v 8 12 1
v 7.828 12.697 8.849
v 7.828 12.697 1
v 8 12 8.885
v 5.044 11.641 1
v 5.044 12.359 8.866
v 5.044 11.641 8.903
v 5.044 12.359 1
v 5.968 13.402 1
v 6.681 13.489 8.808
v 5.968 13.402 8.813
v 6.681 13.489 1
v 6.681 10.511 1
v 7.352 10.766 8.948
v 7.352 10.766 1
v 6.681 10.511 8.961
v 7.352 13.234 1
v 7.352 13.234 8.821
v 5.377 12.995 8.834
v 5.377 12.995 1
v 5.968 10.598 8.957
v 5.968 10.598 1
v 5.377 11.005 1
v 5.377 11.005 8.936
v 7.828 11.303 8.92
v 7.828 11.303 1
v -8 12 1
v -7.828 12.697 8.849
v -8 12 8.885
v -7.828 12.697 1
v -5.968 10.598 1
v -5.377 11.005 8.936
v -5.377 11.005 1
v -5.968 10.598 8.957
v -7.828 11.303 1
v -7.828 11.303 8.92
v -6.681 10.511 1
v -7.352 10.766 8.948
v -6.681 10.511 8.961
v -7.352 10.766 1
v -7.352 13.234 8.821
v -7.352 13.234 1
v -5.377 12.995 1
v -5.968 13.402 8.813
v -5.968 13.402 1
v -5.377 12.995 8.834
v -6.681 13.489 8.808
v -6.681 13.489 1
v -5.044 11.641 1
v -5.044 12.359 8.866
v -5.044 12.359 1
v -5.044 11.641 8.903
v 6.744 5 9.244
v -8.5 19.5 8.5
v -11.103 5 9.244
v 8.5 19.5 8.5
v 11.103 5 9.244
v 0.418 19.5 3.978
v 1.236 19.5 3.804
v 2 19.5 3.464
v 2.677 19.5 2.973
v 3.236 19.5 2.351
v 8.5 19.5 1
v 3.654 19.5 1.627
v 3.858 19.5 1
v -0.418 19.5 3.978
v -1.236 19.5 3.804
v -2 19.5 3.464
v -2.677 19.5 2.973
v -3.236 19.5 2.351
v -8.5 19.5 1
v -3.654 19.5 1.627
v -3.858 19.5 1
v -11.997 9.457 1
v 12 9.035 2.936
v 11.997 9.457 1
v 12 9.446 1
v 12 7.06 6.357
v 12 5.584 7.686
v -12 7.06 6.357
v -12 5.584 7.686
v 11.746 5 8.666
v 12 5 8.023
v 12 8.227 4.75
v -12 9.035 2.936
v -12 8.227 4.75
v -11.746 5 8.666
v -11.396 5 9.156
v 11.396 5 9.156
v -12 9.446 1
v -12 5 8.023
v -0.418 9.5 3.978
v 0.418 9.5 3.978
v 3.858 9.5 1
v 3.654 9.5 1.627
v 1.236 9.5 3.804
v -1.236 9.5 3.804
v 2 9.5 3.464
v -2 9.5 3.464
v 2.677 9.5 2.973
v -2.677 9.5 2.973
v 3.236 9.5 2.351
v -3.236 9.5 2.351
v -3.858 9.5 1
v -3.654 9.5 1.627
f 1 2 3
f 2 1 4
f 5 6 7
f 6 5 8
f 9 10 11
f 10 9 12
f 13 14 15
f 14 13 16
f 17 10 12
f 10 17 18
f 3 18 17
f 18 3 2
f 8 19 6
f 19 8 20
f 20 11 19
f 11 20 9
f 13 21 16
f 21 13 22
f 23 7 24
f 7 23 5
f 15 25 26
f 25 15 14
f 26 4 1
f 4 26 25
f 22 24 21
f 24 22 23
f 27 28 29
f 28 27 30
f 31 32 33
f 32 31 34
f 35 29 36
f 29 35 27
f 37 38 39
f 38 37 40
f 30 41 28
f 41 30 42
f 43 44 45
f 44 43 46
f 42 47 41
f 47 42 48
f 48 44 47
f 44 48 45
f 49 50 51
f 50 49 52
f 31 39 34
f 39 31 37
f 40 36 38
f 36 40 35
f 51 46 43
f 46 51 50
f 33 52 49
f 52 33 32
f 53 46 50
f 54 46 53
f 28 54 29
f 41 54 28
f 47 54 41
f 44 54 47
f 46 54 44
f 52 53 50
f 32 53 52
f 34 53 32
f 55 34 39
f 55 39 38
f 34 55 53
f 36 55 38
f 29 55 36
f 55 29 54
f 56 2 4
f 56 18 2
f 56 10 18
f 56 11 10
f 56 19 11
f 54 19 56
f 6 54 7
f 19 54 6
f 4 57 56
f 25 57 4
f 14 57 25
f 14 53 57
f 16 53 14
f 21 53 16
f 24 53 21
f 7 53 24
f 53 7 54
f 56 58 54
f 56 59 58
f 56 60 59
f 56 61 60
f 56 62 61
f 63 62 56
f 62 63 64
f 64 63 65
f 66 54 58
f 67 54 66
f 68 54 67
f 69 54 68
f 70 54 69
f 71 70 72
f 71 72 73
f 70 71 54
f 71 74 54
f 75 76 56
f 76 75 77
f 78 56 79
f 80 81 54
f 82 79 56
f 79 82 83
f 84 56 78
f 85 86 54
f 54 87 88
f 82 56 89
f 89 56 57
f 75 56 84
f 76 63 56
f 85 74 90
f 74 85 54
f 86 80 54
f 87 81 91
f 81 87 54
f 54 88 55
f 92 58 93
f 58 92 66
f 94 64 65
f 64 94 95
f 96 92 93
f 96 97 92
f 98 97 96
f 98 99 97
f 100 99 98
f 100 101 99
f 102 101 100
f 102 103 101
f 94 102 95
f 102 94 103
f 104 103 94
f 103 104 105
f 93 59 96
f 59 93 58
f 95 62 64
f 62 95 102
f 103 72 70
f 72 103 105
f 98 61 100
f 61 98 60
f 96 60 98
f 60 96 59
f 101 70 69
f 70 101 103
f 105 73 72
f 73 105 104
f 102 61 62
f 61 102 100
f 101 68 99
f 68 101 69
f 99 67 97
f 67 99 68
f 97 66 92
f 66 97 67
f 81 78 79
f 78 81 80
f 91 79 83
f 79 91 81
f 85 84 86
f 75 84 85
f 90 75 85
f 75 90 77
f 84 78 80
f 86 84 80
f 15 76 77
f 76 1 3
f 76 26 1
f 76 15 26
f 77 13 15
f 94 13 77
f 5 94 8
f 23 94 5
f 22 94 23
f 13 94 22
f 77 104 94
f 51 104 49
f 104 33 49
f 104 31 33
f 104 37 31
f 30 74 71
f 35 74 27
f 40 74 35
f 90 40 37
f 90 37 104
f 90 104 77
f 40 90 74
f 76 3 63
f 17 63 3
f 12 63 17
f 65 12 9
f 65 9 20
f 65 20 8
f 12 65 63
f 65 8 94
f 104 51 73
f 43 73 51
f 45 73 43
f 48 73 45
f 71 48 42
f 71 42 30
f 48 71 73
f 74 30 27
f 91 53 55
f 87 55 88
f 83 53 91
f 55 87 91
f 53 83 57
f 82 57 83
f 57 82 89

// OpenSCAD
$fs=.75;

difference() {
	intersection() {
		difference() {
			hull() {
				union() {
					rotate(a = [0, 90, 0]) {
						translate(v = [-0.0000000000, -0.0000000000, -12.0000000000]) {
							cylinder(d = 19.0000000000, h = 24.0000000000);
						}
					}
					translate(v = [0, 9.5000000000, 0]) {
						translate(v = [0.0000000000, 5.0000000000, 0.0000000000]) {
							translate(v = [-8.5000000000, -5.0000000000, -8.5000000000]) {
								cube(size = [17.0000000000, 10, 17.0000000000]);
							}
						}
					}
				}
			}
			translate(v = [0, 9.5000000000, 0]) {
				rotate(a = [-90, 0, 0]) {
					cylinder(d = 8.0000000000, h = 10);
				}
			}
			union() {
				translate(v = [6.5000000000, 12, 0]) {
					translate(v = [-0.0000000000, -0.0000000000, -9.5000000000]) {
						cylinder(d = 3.0000000000, h = 19.0000000000);
					}
				}
				mirror(v = [1, 0, 0]) {
					translate(v = [6.5000000000, 12, 0]) {
						translate(v = [-0.0000000000, -0.0000000000, -9.5000000000]) {
							cylinder(d = 3.0000000000, h = 19.0000000000);
						}
					}
				}
			}
		}
		difference() {
			translate(v = [-12.0000000000, 0, 0]) {
				cube(size = [24.0000000000, 20, 15.0000000000]);
			}
			rotate(a = [0, 90, 0]) {
				translate(v = [-0.0000000000, -0.0000000000, -12.0000000000]) {
					cylinder(d = 19.0000000000, h = 24.0000000000);
				}
			}
		}
	}
	translate(v = [0.0000000000, 0, 0.5000000000]) {
		translate(v = [-12.0000000000, -25.0000000000, -0.5000000000]) {
			cube(size = [24.0000000000, 50, 1]);
		}
	}
	translate(v = [-12.0000000000, -5.0000000000, 0]) {
		cube(size = [24.0000000000, 10, 10]);
	}
}
/***********************************************
*********      SolidPython code:      **********
************************************************
 
from solid import *
from solid import extensions

class Object:
    pass


rod=Object()
rod.d=8.0

nema17 = Object()
nema17.side = 43
nema17.holeDistance = 31.0
nema17.screwD=3

bearing = Object()
bearing.outD = 15.0
bearing.length = 24.0

# to place the rod supports on top of the nema17
supportDepth=10
xSupport = ( cube([supportDepth,nema17.side,rod.d/2+1]).align('left','bottom')
             - cylinder(d=rod.d, h=supportDepth).rot(y=90).move(z=-.5)
             - cylinder(d=nema17.screwD,h=12).center().move(x=5,y=nema17.holeDistance/2.).mirrorCopy('y')
           ).rot(x=180)


bearingShape = cylinder(d=bearing.outD, h= bearing.length+1).center()

#minimal y cart, z motor will be placed in between the rails
yRodDistance = 60.0 # rounding up from nema17.side + bearing.outD
wall=2.0
cartWidth = 2*bearing.length
yBearings = bearingShape.move(z=bearing.length/2).mirrorCopy('z').move(x=yRodDistance/2).mirrorCopy('x')
yCart = ( ( cylinder(d= bearing.outD + 2*wall, h= cartWidth).center().rot(x=90).move(x=yRodDistance/2).mirrorCopy('x')
          + cube([yRodDistance, cartWidth, bearing.outD/2+wall]).align('bottom').move(z=-bearing.outD/2-wall)
          + cube([yRodDistance+bearing.outD+2*wall, cartWidth, bearing.outD/2+wall]).align('top').move(z=bearing.outD/2+wall)

          ) - yBearings.rot(x=90)
            - cube([nema17.side, cartWidth, bearing.outD/2-3]).align('top')
            - cube([nema17.side, cartWidth, bearing.outD]).align('bottom')
            - cube([yRodDistance+20, cartWidth, 3]).align('bottom').move(z=-bearing.outD/2-wall)
            - cylinder(d=3,h=10).move([nema17.holeDistance/2, nema17.holeDistance/2, -bearing.outD/2]).mirrorCopy('x').mirrorCopy('y').debug()
            - cylinder(d=nema17.holeDistance, h =10).move(z=-bearing.outD/2)
          )



#supports for holding the y rods in from the x bearings
bearingCover = cylinder(d= bearing.outD + 2*wall, h= bearing.length).center().rot(y=90)
baseBlock = hull( bearingCover
                  + cube([bearing.outD+2,10,bearing.outD+2]).align('back').move(y=bearing.outD/2+wall))
capScrews = cylinder(d=3., h=bearing.outD + 2*wall).center().move(x=rod.d/2+3./2+1,y=12).mirrorCopy('x')
rodHole = cylinder(d=rod.d,h=10).rot(x=-90).move(y=bearing.outD/2+wall)
#capTopBase = cube([bearing.length, 11, bearing.outD]).center('x').move(y=bearing.outD/2+wall)
#capTopBase = polygon([[0,0],[0,10],[10,10],[10,-3]]).linear_extrude(bearing.length,True).rot(y=-90).move(y=bearing.outD/2+wall)
capTopBase = cube([bearing.length, 20, bearing.outD]).center('x')-bearingCover

baseSupport = baseBlock - rodHole - capScrews

ySupport = part(cylinder(d= bearing.outD + 2*wall, h= yRodDistance + bearing.length).center().rot(y=90)
                 - hole(cylinder(d= bearing.outD, h= yRodDistance + bearing.length).center().rot(y=90))
                 + ( baseSupport
                     * cube(50).align('top')
                   ).move(x=yRodDistance/2).mirrorCopy('x')
                 - cube(1000).align('top').move(z=-bearing.outD/2+1)
                 )

ySupportRodCap = ( baseSupport
                * capTopBase
                - cube([bearing.length,50,1]).align('bottom')
                - cube([bearing.length,10,10]).center('xy')
                )

#support for z rods placed on the falt surface of the yCart above the bearings
zRodDistance = 31.
rodSupport = (cylinder(d=rod.d + 3, h=6) - cylinder(d=rod.d, h=6+1)).move(y=zRodDistance / 2)
beltGuide = ( cube([bearing.outD, bearing.length-zRodDistance/2, 6]).center('x')
              - cylinder(d=rod.d + 6,h=6+1)
              - cube([1,20,6+1]).center('x')).move(y=zRodDistance/2)
zSupport = ( cube([bearing.outD,2*bearing.length,wall]).center('xy')
             + rodSupport.move(z=wall).mirrorCopy('y')
             + beltGuide.move(z=wall).mirrorCopy('y')
           )

zstepper = cube([nema17.side,nema17.side,34]).center('xy').move(z=-bearing.outD/2).color('gray')


yCartZSupport = yCart + zSupport.move(x=yRodDistance/2 ,z=bearing.outD/2)


scene = ( xSupport.move(x=-100)
          + ySupport + ySupportRodCap.move(x=-yRodDistance / 2, z=3)
          + (yCartZSupport ).move(y=50)
        )
scene = yCartZSupport

scad_render_to_file(scene, 'routerParts.scad', '$fs=.75;')

scad_render_to_file(xSupport, 'routerParts_xSupport.scad', '$fs=.75;')
scad_render_to_file(ySupport, 'routerParts_ySupport.scad', '$fs=.75;')
scad_render_to_file(ySupportRodCap, 'routerParts_ySupportCap.scad', '$fs=.75;')
scad_render_to_file(yCartZSupport, 'routerParts_yCart.scad', '$fs=.75;')
 
 
************************************************/
